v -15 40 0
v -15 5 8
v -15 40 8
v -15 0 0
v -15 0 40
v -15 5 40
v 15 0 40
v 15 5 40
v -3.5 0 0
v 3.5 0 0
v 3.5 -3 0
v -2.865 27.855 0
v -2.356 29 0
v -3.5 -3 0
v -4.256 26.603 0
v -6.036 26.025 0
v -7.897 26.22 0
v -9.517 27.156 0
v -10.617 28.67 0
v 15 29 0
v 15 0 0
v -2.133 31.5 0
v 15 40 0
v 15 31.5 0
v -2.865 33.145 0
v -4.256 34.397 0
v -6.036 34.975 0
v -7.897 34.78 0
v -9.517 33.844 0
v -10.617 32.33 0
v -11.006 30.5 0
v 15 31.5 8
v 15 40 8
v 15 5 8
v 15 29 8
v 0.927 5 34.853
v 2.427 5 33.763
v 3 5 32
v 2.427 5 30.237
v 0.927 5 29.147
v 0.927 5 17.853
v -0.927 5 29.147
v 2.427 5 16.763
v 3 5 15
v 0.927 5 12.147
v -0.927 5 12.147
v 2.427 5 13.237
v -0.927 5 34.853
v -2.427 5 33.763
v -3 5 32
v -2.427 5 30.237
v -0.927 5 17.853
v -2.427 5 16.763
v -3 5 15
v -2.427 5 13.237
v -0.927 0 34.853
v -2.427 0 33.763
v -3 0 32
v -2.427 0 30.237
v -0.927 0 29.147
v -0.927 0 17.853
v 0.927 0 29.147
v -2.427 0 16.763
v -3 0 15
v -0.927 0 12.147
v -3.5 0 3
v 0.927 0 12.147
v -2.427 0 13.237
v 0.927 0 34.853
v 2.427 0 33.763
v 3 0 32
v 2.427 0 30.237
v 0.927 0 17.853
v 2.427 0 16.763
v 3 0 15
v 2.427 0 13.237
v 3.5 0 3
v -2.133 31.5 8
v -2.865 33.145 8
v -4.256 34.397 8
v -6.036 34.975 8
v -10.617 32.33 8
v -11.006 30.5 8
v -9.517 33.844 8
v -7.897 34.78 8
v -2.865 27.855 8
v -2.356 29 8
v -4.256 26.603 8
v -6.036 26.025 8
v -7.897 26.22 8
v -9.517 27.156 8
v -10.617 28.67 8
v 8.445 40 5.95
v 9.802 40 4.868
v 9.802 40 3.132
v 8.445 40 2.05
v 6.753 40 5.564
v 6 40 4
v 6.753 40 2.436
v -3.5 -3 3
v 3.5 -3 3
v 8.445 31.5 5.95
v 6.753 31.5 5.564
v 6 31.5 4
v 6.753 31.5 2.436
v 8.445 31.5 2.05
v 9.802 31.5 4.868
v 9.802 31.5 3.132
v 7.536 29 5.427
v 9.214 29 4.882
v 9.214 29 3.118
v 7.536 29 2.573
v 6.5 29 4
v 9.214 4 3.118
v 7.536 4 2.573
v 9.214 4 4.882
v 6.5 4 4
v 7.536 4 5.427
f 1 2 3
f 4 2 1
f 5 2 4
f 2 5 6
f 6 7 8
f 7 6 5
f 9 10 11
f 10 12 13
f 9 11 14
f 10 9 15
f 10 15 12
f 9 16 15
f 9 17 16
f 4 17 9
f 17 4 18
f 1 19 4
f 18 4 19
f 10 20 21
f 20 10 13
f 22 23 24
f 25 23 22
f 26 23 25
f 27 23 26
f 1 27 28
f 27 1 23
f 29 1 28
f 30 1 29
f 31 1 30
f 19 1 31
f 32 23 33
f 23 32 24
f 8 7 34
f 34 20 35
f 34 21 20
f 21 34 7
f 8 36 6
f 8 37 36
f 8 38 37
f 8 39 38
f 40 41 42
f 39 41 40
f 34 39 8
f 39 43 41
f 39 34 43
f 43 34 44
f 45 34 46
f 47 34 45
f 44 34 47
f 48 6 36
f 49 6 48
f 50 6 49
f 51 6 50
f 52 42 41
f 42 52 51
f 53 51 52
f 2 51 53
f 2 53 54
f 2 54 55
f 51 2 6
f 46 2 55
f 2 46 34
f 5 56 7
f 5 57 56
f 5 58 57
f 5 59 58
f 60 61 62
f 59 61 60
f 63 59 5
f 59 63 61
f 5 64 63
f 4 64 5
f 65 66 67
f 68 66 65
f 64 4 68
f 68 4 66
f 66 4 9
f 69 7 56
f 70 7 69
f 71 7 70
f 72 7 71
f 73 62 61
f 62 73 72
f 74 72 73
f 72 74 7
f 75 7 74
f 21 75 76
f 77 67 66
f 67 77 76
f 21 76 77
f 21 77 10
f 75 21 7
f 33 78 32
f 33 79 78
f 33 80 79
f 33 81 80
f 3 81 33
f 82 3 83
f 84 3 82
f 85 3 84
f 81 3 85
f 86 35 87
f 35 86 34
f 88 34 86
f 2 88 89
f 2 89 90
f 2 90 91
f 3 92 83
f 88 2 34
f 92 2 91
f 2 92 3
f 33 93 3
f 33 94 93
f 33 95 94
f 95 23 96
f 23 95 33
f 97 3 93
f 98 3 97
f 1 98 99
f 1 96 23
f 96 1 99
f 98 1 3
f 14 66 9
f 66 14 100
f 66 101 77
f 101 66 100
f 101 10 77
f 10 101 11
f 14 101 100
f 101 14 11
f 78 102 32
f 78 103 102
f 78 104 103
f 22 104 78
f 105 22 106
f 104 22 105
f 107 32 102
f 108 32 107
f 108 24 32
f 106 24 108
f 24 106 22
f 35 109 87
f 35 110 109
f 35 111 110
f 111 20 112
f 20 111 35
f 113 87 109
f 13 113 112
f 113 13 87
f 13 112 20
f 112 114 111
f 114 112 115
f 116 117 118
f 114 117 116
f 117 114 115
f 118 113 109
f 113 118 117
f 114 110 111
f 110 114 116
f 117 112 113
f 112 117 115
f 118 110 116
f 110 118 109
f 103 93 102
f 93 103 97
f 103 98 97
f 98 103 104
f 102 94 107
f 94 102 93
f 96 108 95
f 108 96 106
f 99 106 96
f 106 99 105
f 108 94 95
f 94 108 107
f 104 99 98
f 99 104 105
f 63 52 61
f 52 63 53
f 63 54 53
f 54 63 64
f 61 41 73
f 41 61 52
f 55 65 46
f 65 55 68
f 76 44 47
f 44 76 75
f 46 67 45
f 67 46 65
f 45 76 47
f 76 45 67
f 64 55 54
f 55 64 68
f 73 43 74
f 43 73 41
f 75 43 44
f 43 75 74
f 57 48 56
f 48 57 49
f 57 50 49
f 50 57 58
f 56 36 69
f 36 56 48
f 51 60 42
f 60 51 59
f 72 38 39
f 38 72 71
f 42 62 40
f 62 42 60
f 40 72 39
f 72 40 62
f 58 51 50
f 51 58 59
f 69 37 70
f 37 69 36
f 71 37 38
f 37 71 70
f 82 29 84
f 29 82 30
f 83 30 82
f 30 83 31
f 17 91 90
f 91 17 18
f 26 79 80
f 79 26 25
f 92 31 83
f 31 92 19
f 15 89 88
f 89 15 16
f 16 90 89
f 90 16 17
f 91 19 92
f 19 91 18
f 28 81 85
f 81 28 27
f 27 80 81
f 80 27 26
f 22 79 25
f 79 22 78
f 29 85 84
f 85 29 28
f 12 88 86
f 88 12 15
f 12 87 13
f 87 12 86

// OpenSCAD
include <MCAD/motors.scad>;

mirror(){
difference(){
union(){
translate([-15,0,0])
cube([30,5,40]);

translate([-15,0,0])
cube([30,40,8]);
    
translate([-3.5,-3,0])
cube([7,3,3]);
}

// Clamp slice
translate([-16,29,0])
cube([25,2.5,10]);

// Clamp hole
translate([-8,44,4])
rotate([90,0,0])
cylinder(h=40,r=1.5);

translate([-8,40,4])
rotate([90,0,0])
cylinder(h=10,r=2);

// Bolt holes
translate([0,6,15])
rotate([90,0,0])
cylinder(h=10,r=3);

translate([0,6,32])
rotate([90,0,0])
cylinder(h=10,r=3);

// Smooth rod mount
translate([6.506,30.5,-1])
cylinder(h=10,r=4.5);
}
}
